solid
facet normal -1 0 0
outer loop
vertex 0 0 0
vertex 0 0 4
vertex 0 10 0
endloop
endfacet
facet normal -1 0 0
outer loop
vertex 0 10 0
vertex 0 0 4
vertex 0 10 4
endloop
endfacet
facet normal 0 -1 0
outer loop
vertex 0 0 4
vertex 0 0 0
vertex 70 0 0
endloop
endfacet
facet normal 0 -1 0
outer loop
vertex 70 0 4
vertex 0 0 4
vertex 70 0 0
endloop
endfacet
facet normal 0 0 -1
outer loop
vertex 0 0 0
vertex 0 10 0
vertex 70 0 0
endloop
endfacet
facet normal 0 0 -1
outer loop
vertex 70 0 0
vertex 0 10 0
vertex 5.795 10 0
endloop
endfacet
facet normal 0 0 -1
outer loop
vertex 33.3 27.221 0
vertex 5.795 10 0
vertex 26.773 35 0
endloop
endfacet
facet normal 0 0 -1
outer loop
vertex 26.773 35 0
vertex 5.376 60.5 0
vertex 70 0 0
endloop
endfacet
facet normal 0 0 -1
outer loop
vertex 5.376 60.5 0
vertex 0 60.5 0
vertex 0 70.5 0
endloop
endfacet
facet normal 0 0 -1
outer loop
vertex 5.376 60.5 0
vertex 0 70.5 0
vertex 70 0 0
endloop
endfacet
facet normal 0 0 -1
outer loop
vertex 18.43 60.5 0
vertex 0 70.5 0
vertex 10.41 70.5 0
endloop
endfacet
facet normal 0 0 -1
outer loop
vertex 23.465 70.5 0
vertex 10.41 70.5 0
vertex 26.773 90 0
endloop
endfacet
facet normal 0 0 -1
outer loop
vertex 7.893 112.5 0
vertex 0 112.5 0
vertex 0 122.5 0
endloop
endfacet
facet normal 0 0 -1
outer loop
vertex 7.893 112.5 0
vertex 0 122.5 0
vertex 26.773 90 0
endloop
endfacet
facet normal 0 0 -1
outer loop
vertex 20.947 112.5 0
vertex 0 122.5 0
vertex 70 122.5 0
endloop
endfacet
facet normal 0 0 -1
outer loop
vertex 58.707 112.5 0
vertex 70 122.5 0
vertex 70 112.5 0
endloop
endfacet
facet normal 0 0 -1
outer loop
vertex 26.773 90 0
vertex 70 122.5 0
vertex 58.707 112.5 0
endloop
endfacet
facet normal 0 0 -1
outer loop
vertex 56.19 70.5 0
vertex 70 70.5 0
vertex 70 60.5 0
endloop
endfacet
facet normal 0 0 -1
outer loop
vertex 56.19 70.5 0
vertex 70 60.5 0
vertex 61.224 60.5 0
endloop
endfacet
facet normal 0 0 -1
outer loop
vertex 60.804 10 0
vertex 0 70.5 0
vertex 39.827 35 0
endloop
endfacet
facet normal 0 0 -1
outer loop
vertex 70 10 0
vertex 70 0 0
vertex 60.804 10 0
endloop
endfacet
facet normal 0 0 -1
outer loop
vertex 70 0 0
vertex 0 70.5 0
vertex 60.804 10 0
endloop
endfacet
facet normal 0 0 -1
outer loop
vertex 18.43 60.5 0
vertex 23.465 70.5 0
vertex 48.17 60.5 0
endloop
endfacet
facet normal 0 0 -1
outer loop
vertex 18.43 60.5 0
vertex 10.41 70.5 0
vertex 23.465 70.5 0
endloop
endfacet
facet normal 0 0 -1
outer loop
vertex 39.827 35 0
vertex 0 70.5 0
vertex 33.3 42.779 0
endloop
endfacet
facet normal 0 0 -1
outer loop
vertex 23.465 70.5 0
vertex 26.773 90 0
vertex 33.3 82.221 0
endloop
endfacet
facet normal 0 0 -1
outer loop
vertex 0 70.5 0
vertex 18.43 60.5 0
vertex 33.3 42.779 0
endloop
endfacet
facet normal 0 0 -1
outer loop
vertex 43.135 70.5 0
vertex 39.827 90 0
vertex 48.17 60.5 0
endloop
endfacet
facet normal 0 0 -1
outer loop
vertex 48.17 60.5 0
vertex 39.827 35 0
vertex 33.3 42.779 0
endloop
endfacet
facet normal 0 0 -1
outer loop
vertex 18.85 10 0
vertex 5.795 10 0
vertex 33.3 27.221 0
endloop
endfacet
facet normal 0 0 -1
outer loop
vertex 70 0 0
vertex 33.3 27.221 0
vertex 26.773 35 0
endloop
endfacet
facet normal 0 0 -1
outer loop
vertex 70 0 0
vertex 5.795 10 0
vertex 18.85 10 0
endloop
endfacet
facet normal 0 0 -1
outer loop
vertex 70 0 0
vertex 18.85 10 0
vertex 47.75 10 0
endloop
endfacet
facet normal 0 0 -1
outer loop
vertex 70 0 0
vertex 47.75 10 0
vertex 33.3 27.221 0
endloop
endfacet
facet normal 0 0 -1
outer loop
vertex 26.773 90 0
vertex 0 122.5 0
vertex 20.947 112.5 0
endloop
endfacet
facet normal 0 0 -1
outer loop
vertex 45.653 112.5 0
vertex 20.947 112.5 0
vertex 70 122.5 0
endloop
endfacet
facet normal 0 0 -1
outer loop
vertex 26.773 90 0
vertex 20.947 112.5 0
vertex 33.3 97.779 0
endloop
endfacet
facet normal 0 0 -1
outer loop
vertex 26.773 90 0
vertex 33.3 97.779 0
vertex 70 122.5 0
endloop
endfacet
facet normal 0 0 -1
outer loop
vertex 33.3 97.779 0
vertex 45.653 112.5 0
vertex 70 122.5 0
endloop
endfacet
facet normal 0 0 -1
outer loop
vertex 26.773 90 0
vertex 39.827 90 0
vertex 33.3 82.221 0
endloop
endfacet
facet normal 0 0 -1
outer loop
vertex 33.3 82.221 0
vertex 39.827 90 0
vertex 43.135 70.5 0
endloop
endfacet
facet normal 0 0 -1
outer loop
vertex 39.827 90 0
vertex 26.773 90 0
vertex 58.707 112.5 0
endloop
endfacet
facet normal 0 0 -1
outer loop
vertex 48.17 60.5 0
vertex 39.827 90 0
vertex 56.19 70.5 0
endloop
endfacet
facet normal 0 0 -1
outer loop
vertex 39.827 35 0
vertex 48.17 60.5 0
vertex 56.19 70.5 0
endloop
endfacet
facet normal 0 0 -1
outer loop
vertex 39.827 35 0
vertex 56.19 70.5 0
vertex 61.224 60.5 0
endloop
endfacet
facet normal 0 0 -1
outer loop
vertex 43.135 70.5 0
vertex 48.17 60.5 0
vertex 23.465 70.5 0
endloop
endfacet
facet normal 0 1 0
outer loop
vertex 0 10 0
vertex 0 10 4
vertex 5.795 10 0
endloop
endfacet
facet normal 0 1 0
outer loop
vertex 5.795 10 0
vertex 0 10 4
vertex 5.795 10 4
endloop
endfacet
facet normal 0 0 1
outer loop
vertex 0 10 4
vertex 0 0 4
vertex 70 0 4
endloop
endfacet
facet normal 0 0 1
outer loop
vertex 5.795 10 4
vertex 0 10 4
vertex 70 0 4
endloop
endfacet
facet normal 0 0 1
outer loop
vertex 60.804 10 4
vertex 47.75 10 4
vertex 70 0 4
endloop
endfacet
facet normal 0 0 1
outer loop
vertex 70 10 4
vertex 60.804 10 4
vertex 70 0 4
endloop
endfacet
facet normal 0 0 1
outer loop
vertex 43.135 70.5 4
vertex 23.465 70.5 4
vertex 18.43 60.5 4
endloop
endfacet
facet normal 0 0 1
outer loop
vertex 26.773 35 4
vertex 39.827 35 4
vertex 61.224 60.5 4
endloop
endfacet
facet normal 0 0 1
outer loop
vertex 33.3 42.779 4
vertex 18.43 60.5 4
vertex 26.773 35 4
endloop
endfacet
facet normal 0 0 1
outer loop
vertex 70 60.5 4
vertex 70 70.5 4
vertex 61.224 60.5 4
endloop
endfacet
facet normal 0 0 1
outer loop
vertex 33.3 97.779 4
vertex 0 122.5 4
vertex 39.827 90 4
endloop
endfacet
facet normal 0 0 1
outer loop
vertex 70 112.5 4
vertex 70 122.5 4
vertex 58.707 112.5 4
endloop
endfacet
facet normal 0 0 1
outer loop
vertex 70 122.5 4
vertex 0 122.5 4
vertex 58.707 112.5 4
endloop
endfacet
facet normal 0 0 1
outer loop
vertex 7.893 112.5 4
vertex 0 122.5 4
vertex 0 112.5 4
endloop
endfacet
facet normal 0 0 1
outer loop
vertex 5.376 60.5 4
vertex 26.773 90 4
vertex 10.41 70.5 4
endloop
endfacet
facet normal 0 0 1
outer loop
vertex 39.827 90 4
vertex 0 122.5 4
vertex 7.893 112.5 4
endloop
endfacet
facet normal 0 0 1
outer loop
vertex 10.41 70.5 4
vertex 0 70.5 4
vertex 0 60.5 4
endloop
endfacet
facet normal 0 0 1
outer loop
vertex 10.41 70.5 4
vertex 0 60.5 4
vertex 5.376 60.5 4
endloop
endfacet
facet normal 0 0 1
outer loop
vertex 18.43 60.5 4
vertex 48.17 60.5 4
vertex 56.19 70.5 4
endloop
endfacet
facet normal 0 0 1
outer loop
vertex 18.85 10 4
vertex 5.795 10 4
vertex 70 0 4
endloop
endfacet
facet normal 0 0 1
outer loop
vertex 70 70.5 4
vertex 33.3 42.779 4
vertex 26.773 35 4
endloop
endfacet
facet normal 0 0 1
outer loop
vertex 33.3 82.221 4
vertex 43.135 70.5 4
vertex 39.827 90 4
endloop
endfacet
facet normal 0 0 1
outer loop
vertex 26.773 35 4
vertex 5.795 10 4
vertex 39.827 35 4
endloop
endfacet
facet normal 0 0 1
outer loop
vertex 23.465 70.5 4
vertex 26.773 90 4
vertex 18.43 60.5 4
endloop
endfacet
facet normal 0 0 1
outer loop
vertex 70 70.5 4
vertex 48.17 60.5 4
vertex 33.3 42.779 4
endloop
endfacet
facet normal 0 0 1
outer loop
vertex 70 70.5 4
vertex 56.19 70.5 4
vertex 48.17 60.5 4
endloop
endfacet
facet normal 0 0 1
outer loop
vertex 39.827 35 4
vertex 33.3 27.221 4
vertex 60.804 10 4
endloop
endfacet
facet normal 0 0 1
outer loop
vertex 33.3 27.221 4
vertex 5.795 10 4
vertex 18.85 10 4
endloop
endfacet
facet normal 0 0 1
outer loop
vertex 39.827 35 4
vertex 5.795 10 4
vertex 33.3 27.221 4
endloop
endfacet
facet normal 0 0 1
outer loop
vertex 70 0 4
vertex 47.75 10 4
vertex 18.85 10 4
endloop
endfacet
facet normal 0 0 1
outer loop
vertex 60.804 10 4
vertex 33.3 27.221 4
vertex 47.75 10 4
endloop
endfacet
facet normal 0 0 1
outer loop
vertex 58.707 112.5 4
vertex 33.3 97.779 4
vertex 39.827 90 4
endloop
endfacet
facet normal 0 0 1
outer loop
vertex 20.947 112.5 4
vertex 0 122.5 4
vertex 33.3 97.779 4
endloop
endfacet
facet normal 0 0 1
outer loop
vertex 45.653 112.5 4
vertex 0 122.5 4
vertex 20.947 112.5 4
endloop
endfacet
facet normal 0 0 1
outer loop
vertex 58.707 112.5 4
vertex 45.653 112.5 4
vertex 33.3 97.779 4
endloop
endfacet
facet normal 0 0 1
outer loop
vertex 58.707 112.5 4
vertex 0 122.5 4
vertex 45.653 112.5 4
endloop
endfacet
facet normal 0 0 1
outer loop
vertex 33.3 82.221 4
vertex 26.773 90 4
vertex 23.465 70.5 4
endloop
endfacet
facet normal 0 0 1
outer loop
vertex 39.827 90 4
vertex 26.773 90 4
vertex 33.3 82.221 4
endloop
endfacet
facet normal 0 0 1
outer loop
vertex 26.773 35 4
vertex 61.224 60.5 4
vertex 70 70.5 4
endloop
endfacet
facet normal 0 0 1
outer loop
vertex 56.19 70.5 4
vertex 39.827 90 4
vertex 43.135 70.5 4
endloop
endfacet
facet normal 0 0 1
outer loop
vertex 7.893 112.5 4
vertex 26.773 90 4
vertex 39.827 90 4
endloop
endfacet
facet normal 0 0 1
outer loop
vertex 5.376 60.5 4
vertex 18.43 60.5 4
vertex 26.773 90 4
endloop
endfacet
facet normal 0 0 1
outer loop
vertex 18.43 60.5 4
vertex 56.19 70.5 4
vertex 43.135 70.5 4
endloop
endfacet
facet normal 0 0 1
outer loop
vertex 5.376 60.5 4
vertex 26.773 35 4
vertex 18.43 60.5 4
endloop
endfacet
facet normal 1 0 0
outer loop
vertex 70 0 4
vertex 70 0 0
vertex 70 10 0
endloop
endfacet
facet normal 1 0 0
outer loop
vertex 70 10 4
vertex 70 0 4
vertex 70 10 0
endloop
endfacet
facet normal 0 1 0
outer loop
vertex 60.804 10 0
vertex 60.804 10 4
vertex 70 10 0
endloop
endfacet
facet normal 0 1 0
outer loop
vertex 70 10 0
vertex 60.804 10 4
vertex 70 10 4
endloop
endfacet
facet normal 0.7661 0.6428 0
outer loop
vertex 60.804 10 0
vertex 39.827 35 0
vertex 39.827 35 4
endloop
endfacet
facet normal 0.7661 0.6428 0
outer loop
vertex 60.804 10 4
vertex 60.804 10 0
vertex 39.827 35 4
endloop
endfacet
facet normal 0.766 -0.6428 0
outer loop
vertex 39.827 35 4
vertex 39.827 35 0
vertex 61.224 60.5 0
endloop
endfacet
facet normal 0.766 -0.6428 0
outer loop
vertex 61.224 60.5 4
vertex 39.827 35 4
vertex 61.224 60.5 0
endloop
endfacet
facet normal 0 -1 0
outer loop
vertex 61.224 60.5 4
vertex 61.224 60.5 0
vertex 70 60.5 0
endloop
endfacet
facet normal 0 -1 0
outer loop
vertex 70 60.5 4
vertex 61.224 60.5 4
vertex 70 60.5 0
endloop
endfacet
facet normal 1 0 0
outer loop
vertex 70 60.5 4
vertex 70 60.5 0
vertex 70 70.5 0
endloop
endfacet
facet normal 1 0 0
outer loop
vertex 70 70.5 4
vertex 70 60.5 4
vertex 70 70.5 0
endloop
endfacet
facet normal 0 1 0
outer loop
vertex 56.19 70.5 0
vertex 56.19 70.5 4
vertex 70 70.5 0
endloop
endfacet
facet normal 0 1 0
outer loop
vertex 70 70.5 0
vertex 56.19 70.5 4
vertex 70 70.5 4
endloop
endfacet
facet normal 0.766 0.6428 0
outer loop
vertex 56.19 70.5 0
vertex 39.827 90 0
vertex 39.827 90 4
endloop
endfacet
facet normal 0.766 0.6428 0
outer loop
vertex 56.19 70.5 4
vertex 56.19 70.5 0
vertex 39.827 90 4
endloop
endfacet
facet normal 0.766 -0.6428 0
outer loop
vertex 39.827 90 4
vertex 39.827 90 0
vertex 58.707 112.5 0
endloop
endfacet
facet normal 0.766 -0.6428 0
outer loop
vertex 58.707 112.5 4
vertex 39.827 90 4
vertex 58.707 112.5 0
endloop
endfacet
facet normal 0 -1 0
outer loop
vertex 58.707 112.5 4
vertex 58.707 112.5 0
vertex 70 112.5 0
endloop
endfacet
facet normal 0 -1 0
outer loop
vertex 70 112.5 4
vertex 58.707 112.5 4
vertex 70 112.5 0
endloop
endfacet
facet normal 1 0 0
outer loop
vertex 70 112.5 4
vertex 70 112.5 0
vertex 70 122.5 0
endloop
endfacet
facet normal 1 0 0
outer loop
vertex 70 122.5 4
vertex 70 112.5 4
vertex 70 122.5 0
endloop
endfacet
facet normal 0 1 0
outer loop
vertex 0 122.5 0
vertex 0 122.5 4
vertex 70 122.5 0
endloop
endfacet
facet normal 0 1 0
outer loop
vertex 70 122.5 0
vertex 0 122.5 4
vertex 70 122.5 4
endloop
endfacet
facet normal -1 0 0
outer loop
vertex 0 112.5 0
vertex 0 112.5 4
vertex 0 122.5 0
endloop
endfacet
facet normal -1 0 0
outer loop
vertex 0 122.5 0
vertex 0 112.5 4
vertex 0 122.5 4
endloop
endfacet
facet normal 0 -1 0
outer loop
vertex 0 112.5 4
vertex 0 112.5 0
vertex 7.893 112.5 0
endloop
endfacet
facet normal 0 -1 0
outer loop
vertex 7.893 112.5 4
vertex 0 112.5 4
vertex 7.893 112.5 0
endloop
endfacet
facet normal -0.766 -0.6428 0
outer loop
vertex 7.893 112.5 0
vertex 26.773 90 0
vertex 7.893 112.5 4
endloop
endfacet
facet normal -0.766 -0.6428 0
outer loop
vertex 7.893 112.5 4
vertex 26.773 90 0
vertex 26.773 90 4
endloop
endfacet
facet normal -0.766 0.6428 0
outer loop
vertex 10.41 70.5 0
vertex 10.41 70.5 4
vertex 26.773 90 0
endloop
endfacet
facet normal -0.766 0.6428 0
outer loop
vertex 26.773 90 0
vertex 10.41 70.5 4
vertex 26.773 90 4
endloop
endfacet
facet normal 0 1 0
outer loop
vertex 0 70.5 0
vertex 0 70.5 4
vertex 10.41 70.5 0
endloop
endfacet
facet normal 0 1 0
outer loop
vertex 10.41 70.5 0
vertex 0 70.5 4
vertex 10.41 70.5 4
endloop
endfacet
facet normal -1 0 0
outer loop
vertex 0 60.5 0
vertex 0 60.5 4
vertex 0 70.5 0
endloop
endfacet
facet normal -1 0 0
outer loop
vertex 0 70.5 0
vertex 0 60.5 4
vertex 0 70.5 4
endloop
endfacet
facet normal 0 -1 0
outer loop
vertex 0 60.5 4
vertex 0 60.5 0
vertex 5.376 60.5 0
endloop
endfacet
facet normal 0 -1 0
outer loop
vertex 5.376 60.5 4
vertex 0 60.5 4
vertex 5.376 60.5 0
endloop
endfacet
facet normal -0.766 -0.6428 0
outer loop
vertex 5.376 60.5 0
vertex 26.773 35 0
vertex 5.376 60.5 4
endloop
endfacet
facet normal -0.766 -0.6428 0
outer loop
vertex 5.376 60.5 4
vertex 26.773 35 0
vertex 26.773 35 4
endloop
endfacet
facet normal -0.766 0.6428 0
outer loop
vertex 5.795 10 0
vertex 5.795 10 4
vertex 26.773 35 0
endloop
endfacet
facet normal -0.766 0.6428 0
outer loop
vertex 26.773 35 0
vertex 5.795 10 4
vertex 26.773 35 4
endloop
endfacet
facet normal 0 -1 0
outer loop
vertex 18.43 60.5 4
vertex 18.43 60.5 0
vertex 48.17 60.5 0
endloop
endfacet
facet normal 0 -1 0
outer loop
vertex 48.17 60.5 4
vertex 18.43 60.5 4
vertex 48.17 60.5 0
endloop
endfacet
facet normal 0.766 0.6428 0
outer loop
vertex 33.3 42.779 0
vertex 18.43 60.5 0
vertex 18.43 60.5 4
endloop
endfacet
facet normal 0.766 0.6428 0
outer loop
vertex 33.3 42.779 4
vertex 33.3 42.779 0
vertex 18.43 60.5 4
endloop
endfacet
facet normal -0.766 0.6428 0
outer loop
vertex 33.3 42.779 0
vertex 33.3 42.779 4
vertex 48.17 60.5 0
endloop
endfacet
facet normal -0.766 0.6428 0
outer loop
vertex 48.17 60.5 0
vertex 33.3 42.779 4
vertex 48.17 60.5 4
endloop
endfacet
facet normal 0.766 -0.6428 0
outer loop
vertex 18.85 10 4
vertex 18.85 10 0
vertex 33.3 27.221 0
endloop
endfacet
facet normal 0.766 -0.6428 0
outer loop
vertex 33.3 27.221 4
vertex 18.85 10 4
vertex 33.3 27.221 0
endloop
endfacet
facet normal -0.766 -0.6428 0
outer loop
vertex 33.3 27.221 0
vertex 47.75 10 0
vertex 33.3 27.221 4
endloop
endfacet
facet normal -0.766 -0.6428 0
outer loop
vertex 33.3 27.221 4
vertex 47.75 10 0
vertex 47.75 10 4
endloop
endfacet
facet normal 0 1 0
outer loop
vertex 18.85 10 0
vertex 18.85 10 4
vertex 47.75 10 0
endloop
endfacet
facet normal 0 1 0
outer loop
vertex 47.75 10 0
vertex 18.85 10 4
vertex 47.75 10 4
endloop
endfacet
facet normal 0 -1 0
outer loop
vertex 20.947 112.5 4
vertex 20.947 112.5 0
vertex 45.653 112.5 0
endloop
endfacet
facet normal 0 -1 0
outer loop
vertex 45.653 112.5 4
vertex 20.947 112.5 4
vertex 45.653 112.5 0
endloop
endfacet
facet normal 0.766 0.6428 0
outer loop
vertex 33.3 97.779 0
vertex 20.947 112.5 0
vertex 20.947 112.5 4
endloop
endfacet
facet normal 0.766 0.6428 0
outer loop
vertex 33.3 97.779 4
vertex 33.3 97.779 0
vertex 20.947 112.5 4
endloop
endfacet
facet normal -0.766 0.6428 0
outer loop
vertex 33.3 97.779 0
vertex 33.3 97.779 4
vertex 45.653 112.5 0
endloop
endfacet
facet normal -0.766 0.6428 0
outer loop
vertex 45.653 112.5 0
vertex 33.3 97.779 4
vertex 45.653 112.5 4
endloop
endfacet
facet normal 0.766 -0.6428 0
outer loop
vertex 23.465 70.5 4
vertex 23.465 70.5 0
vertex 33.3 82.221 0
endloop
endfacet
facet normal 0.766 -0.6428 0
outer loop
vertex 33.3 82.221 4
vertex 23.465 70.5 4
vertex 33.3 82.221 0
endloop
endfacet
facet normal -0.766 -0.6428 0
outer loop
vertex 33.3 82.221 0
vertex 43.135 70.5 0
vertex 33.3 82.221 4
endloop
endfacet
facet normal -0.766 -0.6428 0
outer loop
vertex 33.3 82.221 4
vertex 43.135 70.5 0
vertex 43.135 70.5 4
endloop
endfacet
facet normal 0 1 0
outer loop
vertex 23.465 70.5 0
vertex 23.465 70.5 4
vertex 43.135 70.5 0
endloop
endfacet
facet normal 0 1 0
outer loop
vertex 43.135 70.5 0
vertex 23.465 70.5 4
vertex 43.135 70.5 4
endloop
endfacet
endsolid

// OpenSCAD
translate([0,0,0])          cube([70,10,4],0);
translate([0,60.5,0])          cube([70,10,4],0);
translate([0,112.5,0])          cube([70,10,4],0);
   translate([33.3,35,2])     rotate([0,0,40])       cube([10,80,4],true);
   translate([33.3,90,2])     rotate([0,0,40])       cube([10,70,4],true);
   translate([33.3,90,2])     rotate([0,0,-40])       cube([10,70,4],true);
   translate([33.3,35,2])     rotate([0,0,-40])       cube([10,80,4],true);
